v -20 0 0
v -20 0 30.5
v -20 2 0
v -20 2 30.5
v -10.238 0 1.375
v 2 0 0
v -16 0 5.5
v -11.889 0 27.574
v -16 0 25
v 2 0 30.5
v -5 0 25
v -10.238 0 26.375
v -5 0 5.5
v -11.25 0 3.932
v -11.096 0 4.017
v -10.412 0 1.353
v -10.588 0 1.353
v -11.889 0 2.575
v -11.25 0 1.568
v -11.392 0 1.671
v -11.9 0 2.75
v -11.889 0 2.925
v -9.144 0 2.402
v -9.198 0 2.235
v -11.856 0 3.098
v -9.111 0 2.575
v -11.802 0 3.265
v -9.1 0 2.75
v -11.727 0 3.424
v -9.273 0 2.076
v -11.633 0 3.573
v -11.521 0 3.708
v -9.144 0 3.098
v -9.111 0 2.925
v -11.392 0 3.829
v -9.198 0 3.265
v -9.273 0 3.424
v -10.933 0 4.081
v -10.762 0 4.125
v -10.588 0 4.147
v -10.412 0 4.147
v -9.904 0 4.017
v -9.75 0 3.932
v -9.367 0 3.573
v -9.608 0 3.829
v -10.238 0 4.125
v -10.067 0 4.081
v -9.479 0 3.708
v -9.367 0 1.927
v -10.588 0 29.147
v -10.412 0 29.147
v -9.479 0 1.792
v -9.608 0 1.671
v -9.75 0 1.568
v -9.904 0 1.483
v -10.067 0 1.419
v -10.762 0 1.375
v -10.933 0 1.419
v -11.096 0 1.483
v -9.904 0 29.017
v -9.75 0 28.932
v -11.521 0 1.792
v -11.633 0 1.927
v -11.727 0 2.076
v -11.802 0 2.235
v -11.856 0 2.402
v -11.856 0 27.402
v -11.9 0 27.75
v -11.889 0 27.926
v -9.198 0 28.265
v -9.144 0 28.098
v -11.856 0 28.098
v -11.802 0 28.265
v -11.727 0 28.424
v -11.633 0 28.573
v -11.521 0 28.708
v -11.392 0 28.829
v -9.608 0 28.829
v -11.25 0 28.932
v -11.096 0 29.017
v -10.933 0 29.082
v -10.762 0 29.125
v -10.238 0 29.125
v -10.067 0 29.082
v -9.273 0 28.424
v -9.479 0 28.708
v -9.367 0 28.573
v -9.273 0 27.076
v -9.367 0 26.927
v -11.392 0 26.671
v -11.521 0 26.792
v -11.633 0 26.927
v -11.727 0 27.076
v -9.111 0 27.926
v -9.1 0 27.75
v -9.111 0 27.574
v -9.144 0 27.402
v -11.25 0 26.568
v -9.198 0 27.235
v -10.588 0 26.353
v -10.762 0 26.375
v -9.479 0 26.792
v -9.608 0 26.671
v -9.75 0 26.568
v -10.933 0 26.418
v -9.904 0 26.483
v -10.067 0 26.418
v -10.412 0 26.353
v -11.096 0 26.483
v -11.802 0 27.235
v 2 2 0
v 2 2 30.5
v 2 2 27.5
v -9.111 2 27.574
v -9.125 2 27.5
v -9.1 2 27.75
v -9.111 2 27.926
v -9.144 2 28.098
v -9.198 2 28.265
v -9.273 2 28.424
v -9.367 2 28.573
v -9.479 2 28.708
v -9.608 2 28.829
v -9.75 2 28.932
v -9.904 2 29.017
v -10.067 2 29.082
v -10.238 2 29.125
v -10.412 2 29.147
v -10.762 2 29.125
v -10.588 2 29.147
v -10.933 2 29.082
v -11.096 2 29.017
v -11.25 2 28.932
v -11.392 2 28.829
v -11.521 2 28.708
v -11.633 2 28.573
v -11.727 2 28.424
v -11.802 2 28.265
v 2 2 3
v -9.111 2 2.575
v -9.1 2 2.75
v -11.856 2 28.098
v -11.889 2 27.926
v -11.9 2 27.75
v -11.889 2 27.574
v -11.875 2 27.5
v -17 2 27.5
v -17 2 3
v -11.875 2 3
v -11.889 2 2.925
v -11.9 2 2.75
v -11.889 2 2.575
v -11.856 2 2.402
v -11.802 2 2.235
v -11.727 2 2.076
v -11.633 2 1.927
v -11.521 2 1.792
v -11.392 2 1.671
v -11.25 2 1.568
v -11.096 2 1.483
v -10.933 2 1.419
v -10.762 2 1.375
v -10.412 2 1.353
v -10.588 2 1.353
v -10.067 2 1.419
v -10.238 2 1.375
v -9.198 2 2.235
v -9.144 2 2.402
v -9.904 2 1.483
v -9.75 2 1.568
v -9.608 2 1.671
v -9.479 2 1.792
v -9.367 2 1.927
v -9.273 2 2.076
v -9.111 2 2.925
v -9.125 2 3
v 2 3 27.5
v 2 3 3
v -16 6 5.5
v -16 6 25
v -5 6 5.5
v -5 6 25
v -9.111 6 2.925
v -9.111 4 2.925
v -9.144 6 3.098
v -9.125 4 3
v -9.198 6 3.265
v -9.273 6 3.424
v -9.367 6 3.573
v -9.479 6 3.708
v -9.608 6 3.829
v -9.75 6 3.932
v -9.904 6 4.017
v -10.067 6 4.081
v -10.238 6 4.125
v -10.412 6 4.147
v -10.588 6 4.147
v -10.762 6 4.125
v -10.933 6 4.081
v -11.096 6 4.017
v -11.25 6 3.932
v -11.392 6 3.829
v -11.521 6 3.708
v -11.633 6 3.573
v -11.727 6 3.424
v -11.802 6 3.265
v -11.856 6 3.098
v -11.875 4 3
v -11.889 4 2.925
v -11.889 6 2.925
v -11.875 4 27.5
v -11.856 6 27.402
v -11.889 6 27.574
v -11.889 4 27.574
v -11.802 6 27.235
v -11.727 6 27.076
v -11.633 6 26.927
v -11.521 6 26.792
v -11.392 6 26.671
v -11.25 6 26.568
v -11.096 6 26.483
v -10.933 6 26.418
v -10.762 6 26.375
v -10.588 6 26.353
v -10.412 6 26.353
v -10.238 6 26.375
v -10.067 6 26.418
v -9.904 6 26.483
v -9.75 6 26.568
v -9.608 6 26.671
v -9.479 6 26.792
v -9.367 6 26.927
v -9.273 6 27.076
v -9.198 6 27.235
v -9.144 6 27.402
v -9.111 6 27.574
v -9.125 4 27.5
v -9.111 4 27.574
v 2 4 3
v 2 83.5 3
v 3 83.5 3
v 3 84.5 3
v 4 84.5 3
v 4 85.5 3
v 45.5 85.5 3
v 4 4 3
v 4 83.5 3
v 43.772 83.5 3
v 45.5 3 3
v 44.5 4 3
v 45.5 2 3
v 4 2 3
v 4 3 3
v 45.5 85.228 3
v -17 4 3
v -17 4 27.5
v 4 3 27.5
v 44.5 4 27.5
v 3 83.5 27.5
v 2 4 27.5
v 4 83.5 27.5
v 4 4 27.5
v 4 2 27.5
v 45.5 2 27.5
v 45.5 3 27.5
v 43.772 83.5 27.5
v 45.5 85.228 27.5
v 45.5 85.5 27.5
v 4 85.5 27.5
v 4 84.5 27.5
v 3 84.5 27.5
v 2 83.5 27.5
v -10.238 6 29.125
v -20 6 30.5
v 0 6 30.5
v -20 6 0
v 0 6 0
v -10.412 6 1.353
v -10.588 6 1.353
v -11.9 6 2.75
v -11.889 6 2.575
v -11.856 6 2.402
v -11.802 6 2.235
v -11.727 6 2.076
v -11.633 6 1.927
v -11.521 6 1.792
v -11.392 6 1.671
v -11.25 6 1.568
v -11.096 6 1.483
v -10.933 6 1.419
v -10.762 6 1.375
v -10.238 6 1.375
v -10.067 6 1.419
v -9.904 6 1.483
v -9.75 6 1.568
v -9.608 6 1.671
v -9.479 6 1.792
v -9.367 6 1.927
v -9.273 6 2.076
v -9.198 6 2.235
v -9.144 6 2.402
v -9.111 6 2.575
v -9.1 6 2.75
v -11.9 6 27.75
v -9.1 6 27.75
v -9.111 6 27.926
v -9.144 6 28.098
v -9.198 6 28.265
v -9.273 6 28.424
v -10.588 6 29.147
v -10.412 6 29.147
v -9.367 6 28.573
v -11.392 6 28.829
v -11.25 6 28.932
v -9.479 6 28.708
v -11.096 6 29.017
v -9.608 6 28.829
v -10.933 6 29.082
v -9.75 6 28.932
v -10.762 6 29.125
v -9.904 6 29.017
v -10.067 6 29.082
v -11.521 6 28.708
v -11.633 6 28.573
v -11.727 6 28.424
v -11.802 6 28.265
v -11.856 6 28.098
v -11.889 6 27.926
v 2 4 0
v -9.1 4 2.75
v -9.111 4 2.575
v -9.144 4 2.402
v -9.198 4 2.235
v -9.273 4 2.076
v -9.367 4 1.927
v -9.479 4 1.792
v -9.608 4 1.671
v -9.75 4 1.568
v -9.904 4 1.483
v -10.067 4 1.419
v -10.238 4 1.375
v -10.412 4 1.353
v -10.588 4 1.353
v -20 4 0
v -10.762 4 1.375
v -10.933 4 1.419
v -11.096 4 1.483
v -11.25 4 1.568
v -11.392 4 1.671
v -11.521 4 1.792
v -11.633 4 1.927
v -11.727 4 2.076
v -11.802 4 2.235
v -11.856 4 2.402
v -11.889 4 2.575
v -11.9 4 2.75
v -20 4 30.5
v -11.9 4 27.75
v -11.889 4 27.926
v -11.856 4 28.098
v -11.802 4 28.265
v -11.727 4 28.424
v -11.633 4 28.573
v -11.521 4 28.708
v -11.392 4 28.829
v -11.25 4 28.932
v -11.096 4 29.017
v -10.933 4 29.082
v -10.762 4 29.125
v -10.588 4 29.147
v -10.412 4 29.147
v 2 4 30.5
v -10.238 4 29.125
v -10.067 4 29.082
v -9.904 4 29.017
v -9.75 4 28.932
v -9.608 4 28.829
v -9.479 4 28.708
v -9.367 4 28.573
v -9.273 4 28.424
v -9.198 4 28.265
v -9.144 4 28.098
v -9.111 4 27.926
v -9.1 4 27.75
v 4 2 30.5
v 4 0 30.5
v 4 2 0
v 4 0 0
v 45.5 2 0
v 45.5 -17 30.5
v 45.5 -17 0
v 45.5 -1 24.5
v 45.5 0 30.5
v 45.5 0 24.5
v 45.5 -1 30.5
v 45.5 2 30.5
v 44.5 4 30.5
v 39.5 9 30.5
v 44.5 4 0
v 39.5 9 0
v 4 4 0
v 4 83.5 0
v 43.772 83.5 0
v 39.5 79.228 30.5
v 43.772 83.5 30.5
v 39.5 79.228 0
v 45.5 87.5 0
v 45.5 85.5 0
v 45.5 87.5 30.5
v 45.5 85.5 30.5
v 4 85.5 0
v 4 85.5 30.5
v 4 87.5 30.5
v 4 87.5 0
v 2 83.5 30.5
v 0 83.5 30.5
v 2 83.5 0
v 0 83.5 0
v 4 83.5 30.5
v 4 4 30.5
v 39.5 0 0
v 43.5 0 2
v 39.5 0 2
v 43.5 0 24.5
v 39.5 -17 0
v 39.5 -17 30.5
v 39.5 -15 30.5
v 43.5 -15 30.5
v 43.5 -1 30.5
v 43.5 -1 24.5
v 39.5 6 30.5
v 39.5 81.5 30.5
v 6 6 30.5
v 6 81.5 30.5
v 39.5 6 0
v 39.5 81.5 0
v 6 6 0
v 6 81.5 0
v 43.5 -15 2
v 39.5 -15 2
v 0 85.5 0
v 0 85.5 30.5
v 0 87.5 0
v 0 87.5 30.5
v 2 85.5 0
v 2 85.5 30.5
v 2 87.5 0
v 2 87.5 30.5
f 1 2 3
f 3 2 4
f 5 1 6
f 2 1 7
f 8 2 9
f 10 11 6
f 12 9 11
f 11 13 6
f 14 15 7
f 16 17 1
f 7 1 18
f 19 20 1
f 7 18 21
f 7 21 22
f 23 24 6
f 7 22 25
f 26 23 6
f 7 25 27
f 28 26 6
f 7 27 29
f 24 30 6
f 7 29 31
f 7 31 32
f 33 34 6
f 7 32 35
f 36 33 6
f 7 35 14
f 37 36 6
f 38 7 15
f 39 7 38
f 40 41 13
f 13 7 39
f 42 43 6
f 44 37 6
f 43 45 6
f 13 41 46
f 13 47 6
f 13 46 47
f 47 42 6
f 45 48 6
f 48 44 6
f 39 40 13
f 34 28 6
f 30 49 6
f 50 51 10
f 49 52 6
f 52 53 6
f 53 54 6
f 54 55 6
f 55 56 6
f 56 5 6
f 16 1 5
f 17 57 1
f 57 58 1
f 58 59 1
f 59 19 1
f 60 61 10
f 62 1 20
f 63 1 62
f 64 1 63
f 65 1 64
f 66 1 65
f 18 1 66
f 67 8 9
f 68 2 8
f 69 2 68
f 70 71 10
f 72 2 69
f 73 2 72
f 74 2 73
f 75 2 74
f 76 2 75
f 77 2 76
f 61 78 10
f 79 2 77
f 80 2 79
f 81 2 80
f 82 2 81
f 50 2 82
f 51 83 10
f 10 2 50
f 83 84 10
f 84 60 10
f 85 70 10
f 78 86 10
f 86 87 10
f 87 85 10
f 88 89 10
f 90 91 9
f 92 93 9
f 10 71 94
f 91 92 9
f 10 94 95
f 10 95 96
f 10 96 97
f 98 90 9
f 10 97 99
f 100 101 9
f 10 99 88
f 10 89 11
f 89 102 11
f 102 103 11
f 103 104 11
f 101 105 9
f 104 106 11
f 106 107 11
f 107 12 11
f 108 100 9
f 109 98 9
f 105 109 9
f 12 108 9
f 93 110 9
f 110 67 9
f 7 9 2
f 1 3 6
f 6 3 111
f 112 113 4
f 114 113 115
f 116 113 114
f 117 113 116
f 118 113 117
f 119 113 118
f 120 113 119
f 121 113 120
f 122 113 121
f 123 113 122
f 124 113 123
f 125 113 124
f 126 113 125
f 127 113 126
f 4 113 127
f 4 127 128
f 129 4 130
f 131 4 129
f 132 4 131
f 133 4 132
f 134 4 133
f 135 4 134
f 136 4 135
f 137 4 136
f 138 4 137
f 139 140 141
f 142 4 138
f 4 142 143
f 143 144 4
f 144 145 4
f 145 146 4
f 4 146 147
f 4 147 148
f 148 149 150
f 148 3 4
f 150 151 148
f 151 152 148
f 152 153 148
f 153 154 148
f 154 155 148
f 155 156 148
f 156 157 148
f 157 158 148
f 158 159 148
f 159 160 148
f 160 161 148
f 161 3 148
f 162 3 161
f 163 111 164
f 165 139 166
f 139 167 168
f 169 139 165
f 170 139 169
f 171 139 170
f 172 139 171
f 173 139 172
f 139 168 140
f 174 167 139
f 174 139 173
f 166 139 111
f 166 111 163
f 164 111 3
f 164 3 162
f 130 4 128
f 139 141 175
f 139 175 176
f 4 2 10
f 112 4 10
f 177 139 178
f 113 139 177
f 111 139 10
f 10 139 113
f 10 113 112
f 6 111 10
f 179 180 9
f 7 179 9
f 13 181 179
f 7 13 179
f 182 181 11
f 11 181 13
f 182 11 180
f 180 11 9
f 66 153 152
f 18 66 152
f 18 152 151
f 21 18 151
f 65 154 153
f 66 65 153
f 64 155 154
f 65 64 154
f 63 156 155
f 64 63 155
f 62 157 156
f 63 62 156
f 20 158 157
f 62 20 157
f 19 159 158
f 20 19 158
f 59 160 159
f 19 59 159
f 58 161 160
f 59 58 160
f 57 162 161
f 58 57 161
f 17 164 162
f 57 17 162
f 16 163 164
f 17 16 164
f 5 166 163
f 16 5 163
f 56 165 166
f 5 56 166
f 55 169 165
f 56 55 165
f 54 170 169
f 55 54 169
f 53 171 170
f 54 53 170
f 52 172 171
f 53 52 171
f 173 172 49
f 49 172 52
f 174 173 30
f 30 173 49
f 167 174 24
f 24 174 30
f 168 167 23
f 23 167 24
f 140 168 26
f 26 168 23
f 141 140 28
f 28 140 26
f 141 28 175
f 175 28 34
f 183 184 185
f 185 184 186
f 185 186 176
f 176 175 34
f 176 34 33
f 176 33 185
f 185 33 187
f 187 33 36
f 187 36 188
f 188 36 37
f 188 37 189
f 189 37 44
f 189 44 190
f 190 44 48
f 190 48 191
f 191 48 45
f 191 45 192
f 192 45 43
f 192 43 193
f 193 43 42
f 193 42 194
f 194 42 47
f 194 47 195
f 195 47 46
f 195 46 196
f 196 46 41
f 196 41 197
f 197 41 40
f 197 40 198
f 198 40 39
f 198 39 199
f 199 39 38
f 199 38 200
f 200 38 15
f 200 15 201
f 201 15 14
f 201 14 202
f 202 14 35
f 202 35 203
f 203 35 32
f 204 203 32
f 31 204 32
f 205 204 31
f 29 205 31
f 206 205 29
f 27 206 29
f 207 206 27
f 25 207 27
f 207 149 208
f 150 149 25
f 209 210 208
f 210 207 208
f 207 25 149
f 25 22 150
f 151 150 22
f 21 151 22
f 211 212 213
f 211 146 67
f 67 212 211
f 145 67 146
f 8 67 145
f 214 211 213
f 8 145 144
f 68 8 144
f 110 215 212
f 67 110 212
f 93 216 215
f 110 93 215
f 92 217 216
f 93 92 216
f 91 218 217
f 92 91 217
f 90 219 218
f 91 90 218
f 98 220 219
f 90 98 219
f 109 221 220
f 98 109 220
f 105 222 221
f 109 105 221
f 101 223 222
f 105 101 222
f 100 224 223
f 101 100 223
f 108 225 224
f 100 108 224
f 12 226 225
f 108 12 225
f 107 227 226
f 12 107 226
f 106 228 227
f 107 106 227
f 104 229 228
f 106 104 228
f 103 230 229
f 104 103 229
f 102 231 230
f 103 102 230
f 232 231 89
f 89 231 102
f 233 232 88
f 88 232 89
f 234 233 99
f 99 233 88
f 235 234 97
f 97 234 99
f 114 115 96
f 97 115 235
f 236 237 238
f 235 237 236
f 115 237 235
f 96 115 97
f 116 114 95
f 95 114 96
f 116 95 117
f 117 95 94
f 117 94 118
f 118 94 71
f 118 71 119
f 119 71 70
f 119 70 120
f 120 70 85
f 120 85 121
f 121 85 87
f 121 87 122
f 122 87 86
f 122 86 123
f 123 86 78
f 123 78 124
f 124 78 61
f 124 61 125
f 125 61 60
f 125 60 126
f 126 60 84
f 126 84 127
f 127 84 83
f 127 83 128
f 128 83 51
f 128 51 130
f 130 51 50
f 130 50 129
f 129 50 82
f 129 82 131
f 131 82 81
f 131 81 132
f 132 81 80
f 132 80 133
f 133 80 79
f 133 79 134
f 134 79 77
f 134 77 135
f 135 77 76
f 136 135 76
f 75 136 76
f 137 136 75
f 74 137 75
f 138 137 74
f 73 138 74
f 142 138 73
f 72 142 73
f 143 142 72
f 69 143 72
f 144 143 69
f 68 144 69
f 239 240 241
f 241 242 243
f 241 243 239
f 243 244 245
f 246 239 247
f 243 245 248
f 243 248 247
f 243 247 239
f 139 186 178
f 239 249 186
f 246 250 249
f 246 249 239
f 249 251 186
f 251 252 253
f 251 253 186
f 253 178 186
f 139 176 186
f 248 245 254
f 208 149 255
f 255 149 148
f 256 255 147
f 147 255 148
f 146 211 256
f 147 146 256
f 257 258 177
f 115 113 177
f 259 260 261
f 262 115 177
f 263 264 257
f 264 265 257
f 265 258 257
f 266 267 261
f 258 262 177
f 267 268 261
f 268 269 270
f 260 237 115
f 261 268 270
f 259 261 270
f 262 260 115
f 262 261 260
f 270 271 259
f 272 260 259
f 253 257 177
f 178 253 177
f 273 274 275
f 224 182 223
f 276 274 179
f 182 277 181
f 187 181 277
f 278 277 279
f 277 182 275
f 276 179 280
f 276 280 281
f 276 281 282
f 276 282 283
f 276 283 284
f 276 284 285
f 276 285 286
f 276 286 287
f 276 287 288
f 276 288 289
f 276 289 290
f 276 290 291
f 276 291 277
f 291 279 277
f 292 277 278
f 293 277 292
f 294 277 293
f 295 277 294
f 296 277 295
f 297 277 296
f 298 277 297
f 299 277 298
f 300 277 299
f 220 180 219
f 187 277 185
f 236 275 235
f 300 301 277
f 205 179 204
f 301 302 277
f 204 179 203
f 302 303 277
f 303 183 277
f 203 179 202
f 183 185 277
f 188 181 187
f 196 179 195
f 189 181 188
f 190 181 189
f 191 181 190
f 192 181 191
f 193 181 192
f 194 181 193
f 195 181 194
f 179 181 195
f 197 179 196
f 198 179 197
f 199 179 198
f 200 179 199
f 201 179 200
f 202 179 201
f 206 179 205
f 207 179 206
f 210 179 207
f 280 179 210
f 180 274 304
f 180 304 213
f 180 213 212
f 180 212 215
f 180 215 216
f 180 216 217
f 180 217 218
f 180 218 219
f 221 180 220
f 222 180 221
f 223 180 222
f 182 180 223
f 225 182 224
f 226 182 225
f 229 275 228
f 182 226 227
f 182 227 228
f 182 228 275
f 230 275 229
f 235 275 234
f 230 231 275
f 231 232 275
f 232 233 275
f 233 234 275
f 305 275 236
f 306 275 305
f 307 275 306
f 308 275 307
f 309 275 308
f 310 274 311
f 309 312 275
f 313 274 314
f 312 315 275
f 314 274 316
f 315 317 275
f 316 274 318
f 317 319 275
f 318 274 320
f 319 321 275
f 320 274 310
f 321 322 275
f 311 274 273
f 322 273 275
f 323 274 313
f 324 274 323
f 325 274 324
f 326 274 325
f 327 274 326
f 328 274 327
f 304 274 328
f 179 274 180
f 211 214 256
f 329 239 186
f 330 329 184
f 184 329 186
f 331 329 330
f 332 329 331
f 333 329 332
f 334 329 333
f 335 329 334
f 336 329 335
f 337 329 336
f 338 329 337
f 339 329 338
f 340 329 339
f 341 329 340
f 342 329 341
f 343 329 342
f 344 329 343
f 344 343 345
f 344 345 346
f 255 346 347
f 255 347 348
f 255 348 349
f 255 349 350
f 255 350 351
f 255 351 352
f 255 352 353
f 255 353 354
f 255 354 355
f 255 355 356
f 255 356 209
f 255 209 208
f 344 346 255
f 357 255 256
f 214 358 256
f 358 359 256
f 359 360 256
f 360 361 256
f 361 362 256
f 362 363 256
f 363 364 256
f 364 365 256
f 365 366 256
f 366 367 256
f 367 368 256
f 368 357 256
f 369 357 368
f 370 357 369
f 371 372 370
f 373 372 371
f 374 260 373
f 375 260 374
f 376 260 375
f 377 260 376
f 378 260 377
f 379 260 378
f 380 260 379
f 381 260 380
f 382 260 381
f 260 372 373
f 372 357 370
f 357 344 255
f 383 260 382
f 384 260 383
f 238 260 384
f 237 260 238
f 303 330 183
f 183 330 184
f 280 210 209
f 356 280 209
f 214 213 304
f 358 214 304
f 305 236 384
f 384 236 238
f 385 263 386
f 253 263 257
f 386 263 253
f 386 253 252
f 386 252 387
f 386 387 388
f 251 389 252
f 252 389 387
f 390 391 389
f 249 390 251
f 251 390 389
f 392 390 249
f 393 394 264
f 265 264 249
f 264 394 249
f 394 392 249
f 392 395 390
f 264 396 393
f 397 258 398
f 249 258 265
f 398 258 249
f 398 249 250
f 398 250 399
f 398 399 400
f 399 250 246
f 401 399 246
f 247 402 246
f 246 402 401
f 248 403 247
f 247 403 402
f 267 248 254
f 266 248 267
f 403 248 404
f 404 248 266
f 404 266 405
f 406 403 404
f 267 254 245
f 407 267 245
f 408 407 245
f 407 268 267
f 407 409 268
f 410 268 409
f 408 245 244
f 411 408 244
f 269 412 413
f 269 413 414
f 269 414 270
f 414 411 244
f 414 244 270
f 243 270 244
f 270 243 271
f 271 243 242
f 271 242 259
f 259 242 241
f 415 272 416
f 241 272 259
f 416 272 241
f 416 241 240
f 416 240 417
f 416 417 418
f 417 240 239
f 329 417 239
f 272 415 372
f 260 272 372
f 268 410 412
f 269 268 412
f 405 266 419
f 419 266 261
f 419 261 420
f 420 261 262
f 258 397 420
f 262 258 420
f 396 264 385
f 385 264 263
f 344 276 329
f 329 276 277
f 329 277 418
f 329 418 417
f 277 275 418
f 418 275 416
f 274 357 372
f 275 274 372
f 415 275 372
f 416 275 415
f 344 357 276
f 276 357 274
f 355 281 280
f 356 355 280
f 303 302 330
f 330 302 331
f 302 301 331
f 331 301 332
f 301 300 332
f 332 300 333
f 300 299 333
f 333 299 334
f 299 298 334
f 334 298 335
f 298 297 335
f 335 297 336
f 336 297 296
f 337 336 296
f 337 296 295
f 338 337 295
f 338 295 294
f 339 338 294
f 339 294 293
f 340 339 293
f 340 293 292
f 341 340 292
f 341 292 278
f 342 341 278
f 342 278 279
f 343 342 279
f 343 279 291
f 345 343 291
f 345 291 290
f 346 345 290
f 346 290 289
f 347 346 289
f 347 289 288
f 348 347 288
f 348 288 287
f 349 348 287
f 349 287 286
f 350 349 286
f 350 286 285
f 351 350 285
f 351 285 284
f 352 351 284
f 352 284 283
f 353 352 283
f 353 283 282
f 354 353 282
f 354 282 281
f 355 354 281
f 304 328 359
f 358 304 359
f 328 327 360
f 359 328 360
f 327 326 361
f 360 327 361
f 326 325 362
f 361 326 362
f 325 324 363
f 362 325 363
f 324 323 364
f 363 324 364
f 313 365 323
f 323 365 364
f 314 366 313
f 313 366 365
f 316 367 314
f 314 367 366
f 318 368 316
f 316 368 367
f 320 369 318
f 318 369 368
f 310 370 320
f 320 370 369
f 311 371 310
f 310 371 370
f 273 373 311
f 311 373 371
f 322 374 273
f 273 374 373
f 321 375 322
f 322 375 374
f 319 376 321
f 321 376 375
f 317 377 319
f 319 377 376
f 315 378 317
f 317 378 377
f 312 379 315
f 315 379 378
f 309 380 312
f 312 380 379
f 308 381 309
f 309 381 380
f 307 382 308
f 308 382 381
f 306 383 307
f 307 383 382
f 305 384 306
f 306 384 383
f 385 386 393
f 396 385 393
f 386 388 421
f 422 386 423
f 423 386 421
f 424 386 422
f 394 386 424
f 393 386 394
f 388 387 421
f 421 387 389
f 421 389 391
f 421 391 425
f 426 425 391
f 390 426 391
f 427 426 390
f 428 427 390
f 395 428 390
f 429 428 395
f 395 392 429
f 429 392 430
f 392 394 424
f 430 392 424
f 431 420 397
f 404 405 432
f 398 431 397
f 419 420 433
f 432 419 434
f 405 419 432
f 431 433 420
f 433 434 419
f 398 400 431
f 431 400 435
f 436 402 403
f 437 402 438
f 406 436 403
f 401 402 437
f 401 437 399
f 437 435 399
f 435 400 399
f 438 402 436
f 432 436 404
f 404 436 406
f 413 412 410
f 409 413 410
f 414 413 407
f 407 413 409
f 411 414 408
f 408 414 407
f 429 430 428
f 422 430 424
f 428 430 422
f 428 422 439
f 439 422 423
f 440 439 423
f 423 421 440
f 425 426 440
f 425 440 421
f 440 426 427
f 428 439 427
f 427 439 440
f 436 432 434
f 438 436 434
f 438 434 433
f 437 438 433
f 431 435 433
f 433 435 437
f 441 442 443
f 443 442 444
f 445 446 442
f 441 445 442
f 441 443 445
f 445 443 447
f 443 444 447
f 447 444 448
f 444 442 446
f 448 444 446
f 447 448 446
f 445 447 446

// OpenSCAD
$fn = 50;

h = 30.5;
b = 75.5;
l = 33.5;

lc = 20;
hcc = 19.5;
lcc = 11;
lcp = 16;
dch = 25;
rch = 1.4;

d = 6;
ds = 2;
ts = 3;
dh = 3;
dcs = 1;
lcs = 6;

bb = 15;

difference(){
	union(){
		cube([l+2*d,b+2*d,h]);
		translate([-lc,0,0]) cube([lc,d,h]);
	}
	translate([d,d,-1]) cube([l,b,h+2]);
	translate([d*2+l,dh,-1]) rotate([0,0,45]) #cube([d*1.5,d*1.5,h+2]);
	translate([d*2+l,-dh+b,-1]) rotate([0,0,45]) #cube([d*1.5,d*1.5,h+2]);
	translate([d+l-1,d+dh,-1]) #cube([d+2,b-2*dh,h+2]);
	translate([-1-lc,d/2-ds/2,h-ts]) cube([lc+l+2*d+2,ds,ts+1]);
	translate([-1-lc,d/2-ds/2,-1]) cube([lc+l+2*d+2,ds,ts+1]);
	translate([-1,b+d+d/2-ds/2,h-ts]) cube([l+2*d+2,ds,ts+1]);
	translate([-1,b+d+d/2-ds/2,-1]) cube([l+2*d+2,ds,ts+1]);
	translate([d/2-ds/2,-1,-1]) cube([ds,b+d*2+2,ts+1]);
	translate([d/2-ds/2,-1,h-ts]) cube([ds,b+d*2+2,ts+1]);

	translate([-lcp,-1,h/2-hcc/2]) #cube([lcc,d+2,hcc]);
	translate([d/2-ds/2,-1,-1]) #cube([ds,ts+1,h+2]);
	translate([d/2-ds/2,b+d*2-ts,-1]) #cube([ds,ts+1,h+2]);
	translate([-1-lc,d/2-ds/2,-1]) #cube([ts+1,ds,h+2]);
	translate([-1,b+d+d/2-ds/2,-1]) #cube([ts+1,ds,h+2]);

	translate([-lcp+lcc/2,-1,h/2-dch/2]) rotate([-90,0,0]) #cylinder(r=rch,h=d+2);
	translate([-lcp+lcc/2,-1,h/2+dch/2]) rotate([-90,0,0]) #cylinder(r=rch,h=d+2);
}

difference(){
	translate([l+d,-bb-ds,0]) cube([d,bb+ds,h]);
	translate([l+d/2+ds/2,-bb,d/2-ds/2]) cube([d,bb,h-ds*2+d]);
	translate([l+d+1,-dcs,h-lcs]) #cube([d,dcs,lcs+1]);

}
